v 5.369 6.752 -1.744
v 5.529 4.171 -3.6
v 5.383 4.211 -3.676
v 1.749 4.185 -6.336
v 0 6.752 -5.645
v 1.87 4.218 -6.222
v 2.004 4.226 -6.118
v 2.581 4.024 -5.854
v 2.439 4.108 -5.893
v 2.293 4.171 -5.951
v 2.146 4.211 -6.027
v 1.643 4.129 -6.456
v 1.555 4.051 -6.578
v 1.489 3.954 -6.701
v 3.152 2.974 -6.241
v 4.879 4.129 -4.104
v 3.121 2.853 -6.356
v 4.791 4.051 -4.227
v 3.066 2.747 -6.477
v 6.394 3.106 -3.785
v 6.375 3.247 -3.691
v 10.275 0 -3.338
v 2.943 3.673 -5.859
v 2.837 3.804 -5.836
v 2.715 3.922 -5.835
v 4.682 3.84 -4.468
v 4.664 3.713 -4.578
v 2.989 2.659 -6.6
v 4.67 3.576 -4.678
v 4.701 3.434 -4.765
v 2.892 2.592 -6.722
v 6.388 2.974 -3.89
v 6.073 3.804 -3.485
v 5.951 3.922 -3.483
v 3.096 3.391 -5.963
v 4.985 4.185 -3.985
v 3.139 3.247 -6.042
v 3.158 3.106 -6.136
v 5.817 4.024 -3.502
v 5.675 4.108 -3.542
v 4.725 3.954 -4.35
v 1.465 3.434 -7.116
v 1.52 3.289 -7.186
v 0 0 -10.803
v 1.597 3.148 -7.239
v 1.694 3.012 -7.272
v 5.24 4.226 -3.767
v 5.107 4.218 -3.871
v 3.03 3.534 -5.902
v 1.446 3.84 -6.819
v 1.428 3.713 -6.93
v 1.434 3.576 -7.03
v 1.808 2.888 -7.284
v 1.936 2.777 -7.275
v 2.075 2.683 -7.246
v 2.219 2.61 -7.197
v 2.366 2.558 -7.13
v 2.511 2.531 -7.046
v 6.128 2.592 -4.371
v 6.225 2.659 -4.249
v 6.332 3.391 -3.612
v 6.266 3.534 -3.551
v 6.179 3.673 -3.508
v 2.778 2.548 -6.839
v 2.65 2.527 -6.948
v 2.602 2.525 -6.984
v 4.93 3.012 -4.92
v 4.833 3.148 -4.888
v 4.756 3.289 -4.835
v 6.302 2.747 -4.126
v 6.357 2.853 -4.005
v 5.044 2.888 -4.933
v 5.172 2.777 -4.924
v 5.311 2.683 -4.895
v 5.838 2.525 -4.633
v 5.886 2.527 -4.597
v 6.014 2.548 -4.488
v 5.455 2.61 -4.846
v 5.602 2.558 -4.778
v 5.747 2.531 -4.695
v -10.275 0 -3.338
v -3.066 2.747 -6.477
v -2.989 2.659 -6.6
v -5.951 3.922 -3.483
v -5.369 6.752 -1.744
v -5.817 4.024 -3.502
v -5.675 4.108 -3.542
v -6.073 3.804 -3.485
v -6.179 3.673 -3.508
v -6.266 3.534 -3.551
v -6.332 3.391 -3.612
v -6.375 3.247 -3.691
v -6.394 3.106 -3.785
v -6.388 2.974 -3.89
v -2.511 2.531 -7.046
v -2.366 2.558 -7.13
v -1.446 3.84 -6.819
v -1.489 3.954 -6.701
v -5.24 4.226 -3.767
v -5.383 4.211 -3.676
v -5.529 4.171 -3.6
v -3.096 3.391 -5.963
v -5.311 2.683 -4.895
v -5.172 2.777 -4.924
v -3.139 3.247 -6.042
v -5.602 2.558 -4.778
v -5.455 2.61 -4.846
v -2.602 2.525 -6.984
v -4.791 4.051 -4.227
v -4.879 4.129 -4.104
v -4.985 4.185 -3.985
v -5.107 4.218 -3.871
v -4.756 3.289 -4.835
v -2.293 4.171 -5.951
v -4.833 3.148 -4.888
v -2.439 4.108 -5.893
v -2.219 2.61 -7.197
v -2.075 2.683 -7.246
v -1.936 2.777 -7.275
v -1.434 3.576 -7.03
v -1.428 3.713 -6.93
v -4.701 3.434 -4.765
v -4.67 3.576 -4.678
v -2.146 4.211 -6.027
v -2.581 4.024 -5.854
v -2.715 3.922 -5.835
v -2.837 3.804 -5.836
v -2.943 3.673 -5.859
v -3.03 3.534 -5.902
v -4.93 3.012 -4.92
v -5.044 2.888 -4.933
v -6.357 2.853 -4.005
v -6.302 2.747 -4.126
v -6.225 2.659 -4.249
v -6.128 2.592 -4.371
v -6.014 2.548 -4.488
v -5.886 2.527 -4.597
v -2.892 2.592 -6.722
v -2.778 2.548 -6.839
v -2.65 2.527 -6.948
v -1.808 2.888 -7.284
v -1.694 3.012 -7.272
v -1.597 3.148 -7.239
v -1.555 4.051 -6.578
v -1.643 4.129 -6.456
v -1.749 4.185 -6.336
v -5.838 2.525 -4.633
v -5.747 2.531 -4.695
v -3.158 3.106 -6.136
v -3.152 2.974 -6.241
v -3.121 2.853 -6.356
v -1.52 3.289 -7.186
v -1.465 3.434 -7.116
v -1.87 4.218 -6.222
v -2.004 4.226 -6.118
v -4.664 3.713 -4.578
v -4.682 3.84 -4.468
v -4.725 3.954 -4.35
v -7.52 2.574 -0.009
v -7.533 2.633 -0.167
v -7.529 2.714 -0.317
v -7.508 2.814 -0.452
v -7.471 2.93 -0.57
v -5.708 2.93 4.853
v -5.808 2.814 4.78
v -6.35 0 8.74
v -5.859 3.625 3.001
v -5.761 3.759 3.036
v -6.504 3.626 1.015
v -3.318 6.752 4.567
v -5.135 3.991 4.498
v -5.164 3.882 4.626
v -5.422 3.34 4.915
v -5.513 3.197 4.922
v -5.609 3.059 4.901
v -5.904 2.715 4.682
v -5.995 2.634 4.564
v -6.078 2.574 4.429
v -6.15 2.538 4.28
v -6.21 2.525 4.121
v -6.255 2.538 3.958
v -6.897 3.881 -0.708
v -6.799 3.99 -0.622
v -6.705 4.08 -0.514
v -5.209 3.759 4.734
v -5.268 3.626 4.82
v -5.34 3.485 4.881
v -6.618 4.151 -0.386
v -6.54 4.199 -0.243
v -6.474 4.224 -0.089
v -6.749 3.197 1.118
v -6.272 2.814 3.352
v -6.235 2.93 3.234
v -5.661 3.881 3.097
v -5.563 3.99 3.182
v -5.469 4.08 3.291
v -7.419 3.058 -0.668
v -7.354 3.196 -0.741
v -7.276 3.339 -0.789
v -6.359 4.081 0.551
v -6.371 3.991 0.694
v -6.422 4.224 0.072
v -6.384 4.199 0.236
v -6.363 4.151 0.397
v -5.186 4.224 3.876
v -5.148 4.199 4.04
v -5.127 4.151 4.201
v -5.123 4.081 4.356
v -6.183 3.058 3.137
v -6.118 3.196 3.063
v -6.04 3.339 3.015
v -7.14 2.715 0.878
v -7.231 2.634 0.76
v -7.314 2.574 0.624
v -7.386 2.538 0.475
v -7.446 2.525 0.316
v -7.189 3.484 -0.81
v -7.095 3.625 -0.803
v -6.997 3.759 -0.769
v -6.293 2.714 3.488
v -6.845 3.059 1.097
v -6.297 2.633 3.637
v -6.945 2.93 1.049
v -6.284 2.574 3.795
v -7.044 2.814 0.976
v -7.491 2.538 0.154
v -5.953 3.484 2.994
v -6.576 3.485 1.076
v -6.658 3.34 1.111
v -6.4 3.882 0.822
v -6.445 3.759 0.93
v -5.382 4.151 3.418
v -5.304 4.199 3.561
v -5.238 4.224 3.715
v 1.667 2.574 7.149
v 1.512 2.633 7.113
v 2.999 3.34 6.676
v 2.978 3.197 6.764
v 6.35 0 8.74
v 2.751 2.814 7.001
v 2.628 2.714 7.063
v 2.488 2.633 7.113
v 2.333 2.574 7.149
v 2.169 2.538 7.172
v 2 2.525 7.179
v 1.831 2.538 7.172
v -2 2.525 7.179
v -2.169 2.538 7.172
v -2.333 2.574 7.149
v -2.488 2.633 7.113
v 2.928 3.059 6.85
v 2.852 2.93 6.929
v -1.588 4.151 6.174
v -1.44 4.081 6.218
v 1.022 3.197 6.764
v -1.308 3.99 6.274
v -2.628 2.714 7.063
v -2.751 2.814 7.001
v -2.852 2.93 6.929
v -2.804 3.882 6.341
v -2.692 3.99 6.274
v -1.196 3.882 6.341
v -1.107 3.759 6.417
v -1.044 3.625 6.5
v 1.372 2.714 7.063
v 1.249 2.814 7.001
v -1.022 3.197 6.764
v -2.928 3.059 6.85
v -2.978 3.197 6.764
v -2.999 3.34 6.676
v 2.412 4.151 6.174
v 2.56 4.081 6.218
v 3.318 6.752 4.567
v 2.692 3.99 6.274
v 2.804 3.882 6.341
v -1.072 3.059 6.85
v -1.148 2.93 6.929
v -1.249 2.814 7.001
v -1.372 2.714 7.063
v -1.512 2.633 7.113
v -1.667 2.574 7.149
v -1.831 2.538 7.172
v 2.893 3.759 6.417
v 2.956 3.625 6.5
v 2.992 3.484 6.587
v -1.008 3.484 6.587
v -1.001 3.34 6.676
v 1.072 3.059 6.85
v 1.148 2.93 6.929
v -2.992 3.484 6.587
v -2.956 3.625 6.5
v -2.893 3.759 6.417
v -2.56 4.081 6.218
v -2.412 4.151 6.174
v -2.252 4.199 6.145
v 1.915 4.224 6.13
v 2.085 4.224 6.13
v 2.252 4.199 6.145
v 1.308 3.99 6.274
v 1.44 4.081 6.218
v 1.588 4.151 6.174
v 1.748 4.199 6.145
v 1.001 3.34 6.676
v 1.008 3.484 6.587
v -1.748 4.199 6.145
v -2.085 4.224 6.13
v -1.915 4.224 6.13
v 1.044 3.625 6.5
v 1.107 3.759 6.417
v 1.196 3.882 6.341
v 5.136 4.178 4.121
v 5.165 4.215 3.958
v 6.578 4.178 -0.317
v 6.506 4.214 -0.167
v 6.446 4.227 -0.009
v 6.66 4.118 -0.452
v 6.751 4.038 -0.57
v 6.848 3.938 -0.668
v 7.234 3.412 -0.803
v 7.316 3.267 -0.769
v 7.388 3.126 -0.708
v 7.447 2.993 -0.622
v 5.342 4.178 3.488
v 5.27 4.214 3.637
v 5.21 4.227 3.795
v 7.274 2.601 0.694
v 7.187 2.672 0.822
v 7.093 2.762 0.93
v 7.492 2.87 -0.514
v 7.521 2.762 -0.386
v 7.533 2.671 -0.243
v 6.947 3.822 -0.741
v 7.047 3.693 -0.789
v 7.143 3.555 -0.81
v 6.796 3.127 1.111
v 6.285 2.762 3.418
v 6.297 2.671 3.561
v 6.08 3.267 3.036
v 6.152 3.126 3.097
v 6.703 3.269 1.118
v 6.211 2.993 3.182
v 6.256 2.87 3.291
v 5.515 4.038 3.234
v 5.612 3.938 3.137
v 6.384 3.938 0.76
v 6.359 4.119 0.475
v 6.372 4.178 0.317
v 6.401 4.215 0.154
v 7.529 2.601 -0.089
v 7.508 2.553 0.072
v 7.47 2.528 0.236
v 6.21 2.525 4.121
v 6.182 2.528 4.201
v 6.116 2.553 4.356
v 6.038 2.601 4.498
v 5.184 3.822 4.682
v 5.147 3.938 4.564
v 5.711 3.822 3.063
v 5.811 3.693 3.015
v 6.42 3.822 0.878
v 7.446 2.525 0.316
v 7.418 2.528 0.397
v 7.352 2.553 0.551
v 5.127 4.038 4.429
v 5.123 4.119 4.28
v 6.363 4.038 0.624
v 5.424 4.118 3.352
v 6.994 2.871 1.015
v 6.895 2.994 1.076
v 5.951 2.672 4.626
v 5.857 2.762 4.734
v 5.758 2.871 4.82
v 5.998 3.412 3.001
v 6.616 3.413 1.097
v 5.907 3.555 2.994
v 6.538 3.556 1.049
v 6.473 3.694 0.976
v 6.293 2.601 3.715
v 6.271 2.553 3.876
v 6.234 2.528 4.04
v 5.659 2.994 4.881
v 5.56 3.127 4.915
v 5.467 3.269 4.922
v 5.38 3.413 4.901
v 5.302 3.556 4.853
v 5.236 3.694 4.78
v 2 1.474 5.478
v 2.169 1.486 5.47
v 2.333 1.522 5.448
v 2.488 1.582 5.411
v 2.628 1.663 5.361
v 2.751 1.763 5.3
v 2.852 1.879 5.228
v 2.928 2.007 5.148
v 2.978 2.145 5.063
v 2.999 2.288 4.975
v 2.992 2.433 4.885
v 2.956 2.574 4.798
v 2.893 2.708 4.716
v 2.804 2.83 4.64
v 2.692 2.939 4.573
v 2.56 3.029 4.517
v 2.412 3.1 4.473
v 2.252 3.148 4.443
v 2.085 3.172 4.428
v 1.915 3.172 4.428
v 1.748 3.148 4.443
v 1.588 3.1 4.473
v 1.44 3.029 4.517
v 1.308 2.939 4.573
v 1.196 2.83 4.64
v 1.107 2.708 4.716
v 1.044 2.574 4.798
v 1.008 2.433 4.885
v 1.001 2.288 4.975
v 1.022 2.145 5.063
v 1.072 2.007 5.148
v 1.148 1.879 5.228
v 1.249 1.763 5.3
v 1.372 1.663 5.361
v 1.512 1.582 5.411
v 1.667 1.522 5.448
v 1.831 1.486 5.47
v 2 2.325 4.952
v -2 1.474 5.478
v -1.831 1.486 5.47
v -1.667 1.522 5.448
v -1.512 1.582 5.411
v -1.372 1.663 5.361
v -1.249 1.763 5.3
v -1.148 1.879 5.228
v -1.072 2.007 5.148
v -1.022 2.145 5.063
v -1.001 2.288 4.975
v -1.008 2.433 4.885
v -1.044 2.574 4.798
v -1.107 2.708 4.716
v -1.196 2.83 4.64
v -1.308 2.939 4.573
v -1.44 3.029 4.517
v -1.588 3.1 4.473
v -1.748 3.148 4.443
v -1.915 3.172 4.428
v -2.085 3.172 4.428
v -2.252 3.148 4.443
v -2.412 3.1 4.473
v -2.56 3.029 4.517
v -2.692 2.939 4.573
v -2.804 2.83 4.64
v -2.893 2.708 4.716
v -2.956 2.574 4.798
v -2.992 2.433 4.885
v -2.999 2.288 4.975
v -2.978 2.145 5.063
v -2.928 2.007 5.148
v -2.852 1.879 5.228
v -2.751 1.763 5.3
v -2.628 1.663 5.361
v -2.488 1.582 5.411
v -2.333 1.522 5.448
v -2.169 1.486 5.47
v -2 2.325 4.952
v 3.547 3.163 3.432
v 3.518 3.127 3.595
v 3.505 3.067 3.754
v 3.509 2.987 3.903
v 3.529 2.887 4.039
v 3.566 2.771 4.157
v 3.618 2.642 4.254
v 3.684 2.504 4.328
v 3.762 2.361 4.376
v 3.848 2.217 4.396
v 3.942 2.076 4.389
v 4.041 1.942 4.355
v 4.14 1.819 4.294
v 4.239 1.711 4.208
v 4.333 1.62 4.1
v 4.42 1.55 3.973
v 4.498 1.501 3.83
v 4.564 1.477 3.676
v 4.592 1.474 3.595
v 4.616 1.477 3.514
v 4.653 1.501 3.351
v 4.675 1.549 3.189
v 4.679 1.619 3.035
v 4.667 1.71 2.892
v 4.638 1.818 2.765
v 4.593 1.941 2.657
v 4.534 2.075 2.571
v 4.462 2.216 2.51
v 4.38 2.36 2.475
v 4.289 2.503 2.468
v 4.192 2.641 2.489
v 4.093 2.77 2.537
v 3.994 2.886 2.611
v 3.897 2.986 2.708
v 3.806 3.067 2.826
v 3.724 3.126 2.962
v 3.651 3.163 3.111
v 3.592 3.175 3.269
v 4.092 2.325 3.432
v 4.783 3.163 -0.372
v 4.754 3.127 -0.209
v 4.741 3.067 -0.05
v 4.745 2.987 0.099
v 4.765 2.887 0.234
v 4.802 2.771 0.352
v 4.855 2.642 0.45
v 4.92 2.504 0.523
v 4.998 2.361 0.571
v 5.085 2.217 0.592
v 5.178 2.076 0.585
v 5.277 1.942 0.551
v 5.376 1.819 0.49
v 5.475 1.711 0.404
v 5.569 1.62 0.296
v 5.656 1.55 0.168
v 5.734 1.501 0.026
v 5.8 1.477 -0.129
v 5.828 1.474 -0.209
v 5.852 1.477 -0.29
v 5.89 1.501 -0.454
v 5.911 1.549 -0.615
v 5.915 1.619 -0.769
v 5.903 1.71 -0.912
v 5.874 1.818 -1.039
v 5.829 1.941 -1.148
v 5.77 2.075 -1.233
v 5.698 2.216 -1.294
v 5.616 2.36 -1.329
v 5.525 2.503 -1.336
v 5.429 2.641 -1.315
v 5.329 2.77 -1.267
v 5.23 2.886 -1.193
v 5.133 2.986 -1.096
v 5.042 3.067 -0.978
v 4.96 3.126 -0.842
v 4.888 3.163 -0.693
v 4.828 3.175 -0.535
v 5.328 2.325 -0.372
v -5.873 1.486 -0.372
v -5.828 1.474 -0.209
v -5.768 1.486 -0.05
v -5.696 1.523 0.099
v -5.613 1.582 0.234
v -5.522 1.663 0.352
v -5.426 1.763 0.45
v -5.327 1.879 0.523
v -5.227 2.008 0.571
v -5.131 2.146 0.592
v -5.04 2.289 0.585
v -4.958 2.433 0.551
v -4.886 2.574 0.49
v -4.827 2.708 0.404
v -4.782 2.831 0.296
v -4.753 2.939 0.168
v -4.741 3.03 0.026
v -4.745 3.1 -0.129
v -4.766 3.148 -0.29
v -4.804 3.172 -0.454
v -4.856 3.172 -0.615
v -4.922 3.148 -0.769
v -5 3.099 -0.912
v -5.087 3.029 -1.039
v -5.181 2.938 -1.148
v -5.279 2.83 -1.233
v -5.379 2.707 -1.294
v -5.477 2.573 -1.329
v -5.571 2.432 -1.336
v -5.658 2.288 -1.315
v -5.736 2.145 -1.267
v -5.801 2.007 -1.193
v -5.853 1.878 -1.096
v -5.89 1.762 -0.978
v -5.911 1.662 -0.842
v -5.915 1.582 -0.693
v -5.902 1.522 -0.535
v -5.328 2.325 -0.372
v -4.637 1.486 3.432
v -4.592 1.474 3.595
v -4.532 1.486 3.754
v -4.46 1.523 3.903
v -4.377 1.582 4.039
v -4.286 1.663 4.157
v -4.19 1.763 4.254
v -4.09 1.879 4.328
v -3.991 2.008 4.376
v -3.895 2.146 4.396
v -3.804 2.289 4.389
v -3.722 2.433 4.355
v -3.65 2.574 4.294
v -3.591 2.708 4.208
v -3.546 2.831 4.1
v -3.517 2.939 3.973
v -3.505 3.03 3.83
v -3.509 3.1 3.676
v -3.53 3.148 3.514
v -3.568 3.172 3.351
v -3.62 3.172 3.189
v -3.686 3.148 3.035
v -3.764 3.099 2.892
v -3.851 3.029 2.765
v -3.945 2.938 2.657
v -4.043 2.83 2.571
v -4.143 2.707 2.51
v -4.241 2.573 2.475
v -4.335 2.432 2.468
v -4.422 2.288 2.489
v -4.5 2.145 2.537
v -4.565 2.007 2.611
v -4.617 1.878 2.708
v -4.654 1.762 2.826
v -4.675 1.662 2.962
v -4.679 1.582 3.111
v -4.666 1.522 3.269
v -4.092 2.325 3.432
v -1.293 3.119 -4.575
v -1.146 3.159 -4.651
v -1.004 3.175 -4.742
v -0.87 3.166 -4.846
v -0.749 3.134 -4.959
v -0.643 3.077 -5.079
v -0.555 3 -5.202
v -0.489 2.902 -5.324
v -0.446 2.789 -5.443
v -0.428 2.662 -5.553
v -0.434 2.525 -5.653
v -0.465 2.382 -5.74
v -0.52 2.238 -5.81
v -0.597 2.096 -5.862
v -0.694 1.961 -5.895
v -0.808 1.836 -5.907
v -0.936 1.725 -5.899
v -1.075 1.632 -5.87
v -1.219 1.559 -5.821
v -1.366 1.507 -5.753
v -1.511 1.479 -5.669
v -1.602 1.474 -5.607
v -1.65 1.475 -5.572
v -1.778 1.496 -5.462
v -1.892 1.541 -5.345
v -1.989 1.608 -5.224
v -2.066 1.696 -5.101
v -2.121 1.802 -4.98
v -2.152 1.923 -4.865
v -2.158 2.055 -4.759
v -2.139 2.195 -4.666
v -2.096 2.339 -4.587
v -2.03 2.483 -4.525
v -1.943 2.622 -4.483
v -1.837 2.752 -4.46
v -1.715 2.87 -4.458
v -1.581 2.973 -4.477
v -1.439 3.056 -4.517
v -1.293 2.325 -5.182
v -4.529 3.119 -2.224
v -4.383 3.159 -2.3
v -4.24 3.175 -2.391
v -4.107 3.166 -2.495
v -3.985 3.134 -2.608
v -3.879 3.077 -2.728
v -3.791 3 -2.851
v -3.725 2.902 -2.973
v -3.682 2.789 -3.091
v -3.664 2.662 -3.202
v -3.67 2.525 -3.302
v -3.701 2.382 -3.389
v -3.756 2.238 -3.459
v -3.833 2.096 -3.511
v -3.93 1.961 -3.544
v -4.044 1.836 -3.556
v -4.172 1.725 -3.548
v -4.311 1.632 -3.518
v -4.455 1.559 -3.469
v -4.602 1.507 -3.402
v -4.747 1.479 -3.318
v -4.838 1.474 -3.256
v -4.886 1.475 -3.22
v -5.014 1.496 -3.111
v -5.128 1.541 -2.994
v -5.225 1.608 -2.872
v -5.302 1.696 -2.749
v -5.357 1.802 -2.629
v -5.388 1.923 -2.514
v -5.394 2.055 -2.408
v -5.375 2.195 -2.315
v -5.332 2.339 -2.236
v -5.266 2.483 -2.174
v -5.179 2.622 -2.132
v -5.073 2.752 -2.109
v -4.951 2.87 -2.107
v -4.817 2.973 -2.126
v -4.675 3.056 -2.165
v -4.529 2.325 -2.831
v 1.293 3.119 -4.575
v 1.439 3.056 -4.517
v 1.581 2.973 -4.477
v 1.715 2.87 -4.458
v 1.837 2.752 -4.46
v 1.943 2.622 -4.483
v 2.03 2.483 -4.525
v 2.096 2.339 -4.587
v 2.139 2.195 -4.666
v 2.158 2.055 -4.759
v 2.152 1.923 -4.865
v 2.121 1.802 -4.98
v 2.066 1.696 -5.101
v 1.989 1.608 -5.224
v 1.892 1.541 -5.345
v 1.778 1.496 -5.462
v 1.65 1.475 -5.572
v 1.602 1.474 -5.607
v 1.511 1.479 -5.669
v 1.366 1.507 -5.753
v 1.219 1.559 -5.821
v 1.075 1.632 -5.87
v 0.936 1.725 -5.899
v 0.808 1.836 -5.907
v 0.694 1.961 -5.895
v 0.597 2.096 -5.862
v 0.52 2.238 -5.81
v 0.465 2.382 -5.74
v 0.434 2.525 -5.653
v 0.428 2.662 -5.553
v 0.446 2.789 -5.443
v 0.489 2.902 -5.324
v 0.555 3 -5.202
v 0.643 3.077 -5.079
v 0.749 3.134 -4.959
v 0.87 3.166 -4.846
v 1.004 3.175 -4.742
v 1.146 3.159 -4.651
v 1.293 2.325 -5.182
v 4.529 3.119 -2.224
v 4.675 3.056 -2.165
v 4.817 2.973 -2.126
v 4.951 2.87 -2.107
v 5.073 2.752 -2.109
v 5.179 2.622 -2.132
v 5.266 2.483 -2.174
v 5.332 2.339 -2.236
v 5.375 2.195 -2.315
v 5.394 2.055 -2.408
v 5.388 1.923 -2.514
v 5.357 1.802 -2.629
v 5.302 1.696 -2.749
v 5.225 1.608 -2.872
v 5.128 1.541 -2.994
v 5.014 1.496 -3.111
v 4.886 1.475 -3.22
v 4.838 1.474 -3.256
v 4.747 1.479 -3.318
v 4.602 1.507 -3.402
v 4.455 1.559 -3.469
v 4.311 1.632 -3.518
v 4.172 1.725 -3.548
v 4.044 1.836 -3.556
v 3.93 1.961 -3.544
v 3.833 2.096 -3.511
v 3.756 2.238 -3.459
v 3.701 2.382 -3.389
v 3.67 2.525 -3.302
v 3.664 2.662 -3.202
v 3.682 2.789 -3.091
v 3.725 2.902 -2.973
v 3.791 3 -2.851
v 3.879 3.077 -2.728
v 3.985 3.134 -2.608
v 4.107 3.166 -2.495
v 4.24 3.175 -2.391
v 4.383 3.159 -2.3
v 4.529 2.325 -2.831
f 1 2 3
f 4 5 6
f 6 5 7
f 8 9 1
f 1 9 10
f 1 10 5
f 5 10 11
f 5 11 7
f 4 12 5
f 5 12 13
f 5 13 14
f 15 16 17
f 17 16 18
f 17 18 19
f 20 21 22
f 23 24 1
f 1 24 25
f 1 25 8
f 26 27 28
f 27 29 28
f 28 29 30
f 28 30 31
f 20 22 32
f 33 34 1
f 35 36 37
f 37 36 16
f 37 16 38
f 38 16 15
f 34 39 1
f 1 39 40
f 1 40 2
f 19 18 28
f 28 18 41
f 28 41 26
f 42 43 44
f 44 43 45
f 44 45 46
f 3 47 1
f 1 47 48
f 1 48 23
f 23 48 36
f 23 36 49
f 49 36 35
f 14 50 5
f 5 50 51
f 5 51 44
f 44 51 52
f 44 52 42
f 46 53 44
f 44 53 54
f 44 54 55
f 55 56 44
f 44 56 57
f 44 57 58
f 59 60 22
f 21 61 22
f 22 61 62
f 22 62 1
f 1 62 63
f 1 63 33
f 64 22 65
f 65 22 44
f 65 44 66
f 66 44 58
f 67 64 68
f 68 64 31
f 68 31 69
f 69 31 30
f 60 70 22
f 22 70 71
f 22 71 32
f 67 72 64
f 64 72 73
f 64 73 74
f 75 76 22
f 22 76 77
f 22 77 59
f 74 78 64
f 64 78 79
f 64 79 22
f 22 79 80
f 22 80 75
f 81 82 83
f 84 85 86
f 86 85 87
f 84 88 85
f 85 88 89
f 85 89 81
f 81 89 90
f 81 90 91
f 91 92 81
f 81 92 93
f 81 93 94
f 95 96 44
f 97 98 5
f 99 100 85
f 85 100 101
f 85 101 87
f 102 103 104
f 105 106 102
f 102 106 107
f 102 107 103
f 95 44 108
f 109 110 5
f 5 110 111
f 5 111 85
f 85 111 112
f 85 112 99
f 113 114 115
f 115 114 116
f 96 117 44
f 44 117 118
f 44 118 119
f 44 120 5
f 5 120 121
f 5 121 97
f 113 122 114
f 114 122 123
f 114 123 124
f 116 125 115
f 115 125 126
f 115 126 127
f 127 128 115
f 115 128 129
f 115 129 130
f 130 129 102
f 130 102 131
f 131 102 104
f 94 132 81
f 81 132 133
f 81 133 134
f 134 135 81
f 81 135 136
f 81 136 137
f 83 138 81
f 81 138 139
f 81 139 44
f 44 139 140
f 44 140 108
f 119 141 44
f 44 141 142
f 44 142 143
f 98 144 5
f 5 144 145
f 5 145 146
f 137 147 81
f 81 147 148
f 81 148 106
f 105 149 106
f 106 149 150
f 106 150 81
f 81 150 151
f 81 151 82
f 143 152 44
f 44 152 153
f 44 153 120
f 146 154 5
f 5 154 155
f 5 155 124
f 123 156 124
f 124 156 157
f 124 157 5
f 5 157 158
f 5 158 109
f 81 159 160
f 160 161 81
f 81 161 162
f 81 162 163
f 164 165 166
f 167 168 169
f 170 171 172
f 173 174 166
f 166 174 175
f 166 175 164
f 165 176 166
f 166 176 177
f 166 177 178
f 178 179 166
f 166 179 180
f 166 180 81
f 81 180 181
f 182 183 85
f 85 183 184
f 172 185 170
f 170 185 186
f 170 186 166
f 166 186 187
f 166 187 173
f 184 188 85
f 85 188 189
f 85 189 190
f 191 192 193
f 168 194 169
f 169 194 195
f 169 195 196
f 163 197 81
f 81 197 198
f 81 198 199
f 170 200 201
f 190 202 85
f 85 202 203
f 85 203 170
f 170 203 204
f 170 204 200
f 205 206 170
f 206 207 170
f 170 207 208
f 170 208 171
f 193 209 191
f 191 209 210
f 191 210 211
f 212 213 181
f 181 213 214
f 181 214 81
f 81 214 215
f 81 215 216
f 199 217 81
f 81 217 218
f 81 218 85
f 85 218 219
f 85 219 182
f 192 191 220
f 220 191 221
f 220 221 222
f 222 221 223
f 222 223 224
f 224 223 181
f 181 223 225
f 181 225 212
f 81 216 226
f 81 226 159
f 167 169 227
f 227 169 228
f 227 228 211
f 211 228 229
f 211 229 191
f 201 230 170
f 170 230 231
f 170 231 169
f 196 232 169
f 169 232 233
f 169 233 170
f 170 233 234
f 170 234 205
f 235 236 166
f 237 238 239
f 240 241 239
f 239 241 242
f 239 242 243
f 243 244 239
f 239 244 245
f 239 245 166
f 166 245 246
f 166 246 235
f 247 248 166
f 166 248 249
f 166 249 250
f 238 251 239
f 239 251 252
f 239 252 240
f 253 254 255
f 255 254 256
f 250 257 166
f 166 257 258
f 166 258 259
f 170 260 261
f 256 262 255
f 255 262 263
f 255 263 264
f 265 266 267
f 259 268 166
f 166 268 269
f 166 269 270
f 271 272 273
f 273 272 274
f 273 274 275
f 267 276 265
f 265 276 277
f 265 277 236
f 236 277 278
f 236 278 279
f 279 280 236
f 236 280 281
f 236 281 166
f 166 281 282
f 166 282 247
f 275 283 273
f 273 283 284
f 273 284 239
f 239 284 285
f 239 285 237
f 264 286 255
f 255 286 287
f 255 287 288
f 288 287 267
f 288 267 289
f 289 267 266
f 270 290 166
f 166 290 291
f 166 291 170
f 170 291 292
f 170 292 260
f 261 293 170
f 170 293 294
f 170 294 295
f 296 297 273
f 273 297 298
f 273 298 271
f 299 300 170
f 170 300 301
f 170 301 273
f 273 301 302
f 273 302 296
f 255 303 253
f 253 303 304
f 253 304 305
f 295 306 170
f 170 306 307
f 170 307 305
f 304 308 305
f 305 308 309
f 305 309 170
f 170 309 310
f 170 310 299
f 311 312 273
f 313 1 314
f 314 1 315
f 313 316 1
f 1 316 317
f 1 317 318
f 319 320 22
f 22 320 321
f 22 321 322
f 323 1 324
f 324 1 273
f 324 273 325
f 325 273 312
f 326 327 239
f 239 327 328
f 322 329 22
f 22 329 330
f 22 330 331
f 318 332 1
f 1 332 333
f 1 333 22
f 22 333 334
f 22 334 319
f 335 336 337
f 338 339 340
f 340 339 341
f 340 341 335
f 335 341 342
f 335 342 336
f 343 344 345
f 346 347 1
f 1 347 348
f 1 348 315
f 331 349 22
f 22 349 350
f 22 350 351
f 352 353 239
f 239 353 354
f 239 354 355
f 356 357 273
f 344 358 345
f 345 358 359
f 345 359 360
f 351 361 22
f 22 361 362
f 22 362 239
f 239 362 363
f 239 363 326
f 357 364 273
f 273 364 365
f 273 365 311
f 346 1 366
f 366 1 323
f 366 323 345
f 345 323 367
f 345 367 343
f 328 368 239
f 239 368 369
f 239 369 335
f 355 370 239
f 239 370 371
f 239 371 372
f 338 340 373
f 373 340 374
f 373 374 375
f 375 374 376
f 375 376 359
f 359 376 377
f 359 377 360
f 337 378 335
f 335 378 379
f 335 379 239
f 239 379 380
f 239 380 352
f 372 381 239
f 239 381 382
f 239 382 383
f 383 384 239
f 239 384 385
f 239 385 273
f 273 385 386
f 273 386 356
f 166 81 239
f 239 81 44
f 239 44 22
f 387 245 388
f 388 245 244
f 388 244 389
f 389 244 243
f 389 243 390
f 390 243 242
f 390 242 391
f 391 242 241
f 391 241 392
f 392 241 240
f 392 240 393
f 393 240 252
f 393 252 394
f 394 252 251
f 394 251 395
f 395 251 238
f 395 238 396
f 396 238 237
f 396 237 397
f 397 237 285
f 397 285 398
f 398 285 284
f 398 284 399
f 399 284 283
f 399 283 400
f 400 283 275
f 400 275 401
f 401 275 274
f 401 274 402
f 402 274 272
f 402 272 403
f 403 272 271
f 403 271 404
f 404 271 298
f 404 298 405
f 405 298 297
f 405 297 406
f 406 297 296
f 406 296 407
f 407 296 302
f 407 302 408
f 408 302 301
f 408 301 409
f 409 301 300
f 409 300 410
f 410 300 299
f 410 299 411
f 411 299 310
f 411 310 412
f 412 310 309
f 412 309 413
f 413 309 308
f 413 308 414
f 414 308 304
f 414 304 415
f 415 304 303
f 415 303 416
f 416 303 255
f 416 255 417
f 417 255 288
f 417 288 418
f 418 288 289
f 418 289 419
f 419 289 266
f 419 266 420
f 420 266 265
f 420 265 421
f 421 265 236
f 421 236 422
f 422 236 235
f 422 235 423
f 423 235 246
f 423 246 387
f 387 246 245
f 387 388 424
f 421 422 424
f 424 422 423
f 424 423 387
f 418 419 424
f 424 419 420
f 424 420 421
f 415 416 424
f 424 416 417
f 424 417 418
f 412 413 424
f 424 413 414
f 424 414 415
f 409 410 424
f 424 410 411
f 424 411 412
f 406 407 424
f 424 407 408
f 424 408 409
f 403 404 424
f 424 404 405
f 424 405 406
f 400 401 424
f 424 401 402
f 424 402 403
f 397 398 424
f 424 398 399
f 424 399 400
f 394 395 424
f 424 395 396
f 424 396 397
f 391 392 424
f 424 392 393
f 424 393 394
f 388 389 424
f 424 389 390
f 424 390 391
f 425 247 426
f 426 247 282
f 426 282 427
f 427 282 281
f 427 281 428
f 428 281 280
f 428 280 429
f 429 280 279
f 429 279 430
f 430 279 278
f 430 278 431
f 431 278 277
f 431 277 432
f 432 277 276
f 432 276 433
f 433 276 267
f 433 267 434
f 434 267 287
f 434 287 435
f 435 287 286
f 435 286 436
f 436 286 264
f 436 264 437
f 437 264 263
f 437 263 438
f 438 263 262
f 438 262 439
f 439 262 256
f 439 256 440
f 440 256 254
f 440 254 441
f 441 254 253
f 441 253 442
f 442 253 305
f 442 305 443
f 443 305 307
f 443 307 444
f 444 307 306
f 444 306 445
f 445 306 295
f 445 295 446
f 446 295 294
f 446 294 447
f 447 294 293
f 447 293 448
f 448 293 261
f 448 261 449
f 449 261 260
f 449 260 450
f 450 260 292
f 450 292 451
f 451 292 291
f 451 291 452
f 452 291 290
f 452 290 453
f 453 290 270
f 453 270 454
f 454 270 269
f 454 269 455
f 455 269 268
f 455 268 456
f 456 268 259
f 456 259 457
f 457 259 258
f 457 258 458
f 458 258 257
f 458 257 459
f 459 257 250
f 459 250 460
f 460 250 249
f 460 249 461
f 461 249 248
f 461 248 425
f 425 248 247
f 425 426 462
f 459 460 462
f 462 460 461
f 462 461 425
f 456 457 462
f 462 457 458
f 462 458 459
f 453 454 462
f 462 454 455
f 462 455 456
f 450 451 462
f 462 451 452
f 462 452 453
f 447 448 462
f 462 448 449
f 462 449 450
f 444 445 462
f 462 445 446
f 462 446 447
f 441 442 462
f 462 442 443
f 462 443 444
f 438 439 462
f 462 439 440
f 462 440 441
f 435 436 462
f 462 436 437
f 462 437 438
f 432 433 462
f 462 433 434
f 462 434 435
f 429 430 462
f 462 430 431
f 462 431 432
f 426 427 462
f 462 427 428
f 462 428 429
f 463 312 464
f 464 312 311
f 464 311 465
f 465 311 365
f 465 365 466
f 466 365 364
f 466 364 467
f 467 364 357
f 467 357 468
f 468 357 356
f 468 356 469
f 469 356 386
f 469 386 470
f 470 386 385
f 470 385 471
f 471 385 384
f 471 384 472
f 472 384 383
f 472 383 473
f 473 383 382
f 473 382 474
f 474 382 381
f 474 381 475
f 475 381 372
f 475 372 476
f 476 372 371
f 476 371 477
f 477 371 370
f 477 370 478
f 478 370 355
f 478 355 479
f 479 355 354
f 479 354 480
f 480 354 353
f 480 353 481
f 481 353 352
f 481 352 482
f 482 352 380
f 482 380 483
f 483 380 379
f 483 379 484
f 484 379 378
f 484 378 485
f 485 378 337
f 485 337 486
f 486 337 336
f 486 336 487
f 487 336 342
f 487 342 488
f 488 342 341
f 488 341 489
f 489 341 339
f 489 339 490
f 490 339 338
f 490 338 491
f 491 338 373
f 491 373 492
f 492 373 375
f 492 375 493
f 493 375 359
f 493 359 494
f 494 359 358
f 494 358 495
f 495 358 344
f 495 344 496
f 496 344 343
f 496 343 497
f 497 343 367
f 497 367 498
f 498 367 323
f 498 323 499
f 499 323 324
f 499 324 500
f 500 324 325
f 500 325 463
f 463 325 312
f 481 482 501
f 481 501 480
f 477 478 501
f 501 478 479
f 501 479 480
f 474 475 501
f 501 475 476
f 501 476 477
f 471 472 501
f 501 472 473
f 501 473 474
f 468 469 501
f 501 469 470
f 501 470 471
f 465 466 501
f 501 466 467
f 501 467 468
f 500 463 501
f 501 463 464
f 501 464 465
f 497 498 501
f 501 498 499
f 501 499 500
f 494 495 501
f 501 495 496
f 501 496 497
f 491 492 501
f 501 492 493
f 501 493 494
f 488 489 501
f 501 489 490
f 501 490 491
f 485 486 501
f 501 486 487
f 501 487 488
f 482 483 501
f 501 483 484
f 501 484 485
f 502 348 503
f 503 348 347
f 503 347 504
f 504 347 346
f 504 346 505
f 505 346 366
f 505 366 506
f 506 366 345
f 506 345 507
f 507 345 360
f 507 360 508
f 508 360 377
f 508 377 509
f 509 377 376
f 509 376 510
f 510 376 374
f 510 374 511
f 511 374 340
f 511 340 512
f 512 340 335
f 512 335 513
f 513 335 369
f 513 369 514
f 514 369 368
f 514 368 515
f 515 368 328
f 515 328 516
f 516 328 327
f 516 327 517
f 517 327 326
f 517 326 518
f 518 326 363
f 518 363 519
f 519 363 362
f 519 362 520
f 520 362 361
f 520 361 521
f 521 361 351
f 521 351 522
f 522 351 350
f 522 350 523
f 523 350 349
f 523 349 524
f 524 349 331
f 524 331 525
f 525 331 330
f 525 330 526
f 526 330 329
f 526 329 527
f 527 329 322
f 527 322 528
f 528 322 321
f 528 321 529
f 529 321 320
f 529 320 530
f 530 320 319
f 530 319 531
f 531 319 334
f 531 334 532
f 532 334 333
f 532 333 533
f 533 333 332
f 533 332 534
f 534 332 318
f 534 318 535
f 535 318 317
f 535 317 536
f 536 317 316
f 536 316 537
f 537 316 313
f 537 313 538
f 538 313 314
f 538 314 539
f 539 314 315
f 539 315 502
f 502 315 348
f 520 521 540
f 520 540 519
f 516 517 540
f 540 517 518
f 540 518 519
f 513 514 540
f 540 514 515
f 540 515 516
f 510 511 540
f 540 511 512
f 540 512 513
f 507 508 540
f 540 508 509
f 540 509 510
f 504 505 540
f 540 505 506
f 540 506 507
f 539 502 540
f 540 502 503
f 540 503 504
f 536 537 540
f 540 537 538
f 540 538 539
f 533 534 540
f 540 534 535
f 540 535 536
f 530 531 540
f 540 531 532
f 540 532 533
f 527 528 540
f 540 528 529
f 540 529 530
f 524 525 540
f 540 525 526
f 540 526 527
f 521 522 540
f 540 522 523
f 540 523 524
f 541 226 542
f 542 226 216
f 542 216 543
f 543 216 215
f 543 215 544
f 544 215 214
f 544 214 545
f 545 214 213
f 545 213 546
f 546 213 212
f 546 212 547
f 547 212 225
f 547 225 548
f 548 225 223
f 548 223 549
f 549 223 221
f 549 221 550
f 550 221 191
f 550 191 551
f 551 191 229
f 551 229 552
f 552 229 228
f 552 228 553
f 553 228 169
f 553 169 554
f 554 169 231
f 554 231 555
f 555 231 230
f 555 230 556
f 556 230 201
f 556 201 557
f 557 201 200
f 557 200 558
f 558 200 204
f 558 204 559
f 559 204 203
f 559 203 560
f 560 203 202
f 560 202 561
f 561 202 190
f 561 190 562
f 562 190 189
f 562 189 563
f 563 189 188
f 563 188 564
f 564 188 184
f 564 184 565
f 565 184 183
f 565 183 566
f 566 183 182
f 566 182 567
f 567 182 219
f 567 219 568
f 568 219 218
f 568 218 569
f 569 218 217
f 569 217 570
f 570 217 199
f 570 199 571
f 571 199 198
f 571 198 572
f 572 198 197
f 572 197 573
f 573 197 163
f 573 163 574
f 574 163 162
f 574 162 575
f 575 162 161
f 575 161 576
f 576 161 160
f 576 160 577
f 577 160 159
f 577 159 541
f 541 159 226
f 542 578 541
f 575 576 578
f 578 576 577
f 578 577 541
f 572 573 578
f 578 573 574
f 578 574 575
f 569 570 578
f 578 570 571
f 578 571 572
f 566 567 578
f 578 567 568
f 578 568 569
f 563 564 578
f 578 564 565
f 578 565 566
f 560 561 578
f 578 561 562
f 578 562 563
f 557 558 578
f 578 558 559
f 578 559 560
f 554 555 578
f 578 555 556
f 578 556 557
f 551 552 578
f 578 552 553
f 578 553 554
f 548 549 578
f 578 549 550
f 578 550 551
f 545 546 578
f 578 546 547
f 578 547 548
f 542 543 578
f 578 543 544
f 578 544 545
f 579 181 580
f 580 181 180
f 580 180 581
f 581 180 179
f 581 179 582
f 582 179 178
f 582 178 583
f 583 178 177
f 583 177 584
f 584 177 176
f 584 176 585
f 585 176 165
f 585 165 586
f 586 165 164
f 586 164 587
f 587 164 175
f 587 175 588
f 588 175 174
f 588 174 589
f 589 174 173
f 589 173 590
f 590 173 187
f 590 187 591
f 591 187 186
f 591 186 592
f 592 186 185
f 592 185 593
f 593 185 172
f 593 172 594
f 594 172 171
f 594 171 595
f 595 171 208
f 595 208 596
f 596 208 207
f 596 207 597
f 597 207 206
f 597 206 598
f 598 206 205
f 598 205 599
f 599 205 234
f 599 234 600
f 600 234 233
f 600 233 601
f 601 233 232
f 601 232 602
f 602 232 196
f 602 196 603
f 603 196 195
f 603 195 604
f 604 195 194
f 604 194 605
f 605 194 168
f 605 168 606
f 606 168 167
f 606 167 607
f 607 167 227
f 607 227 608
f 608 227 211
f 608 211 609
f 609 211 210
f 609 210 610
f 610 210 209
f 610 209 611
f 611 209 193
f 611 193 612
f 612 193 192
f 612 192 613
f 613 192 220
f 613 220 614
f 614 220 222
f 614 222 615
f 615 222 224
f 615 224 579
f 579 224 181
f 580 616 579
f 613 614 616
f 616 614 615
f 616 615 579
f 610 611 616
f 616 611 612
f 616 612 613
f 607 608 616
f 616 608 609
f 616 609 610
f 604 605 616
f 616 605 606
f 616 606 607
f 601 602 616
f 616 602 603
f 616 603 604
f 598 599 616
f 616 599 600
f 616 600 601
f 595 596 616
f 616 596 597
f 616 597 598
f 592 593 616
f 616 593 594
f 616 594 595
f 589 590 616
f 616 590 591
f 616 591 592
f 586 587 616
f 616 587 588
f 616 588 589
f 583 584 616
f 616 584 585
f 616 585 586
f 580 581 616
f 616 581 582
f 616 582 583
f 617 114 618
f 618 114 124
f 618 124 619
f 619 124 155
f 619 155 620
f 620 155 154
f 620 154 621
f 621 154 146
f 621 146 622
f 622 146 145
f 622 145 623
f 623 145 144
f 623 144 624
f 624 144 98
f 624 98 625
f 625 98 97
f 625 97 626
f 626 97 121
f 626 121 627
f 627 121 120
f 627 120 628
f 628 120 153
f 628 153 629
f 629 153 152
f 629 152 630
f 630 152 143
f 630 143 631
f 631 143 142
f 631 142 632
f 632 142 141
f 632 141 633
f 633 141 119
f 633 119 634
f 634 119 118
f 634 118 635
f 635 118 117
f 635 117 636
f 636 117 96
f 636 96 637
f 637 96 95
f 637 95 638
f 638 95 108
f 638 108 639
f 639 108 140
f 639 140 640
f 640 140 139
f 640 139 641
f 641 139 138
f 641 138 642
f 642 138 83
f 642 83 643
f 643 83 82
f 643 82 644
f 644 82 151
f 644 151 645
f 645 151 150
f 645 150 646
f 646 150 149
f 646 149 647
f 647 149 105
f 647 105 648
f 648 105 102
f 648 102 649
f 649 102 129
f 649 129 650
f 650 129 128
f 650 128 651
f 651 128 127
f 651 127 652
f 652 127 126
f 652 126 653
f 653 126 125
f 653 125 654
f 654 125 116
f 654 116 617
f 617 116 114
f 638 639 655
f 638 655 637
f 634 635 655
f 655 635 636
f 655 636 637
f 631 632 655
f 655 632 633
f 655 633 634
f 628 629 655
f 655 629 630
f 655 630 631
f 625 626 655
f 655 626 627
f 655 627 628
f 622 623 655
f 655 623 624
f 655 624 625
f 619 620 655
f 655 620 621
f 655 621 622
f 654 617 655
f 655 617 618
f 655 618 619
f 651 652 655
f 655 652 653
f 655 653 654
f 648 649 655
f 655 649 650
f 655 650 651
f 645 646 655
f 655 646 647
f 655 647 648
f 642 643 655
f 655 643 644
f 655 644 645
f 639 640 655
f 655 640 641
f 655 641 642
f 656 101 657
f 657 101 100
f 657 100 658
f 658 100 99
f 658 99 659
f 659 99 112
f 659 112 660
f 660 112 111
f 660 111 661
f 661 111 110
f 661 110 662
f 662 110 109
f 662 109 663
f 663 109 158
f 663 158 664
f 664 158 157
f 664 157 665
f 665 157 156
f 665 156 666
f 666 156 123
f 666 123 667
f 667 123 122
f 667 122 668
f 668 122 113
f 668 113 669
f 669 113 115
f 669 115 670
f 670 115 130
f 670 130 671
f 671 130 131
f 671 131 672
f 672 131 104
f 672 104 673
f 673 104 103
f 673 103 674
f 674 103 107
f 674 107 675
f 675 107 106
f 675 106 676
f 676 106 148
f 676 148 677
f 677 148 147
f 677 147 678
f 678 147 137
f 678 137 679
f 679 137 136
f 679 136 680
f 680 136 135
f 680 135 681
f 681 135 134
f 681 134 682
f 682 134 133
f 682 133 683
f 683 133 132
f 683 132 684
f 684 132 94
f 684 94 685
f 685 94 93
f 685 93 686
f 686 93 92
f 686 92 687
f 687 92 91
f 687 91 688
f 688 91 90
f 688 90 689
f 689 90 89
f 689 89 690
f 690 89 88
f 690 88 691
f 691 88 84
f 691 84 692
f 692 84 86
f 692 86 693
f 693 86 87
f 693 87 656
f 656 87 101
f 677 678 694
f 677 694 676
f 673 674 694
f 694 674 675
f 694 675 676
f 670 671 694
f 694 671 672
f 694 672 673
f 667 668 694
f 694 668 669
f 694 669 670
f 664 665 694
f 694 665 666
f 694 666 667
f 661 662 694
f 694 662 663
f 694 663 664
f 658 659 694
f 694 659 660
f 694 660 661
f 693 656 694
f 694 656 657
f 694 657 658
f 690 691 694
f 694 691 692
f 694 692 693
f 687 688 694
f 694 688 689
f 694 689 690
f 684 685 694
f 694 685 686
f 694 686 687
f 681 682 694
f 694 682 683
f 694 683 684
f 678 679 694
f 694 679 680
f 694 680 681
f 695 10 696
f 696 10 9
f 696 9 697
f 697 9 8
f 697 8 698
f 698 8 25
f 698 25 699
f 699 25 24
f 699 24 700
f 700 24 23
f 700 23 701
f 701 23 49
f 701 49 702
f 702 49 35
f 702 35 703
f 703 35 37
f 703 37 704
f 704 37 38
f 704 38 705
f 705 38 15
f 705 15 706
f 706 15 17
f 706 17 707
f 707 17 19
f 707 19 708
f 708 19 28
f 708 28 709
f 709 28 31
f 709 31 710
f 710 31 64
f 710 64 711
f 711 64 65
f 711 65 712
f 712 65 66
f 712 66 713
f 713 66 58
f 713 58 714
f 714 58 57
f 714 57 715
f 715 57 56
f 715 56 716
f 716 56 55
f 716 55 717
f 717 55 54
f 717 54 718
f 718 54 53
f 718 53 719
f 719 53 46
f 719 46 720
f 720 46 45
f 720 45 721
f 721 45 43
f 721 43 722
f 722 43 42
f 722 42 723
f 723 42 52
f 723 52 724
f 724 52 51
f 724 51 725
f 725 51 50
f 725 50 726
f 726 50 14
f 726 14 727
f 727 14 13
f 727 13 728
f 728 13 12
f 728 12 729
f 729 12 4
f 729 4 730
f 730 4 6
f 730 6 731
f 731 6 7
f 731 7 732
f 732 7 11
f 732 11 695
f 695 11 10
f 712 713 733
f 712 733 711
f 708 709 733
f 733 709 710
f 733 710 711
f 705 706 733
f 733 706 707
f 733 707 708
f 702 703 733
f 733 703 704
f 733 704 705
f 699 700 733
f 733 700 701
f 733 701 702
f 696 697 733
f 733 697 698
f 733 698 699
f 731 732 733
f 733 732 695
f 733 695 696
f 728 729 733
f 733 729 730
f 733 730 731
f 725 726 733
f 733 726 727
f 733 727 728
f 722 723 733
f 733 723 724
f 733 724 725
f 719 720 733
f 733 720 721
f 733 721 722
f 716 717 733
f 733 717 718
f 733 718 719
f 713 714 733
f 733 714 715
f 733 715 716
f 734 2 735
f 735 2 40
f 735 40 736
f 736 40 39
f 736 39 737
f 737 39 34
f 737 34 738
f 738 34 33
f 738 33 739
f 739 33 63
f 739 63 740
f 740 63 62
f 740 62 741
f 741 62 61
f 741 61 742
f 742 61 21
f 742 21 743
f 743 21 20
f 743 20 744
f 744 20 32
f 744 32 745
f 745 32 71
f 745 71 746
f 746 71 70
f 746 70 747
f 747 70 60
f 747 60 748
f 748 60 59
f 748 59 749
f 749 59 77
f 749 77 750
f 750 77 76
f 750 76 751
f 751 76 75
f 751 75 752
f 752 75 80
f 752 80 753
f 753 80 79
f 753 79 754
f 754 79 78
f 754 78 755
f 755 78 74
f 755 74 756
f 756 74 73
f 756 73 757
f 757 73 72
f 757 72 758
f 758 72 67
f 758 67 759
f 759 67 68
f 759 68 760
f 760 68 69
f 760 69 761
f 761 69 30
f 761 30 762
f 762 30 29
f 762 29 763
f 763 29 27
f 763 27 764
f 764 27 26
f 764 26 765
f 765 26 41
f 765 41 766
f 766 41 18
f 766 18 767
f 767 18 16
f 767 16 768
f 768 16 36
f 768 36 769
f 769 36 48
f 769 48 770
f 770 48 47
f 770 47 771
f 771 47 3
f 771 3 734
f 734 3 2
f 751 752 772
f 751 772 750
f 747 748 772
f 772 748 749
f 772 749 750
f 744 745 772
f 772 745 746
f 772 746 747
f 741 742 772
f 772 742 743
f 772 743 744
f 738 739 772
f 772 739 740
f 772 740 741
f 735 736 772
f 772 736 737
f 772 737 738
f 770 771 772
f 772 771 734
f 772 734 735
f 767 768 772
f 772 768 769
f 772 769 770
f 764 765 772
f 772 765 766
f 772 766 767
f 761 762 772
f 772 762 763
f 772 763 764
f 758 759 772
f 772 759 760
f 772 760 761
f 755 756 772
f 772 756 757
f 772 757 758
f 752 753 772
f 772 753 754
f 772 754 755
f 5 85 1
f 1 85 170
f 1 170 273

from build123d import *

# Parameters (mm, degrees)
BOSS_EXTRUDE1_DEPTH = 6.752040791
BOSS_EXTRUDE1_TAPER = 31.717474411
SKETCH3_R           = 1
CUT_EXTRUDE1_DEPTH  = 2
CIRPATTERN1_COUNT   = 5


with BuildPart() as part:
    # Sketch1 → Boss-Extrude1 (new body)
    with BuildSketch(Plane(origin=(0, 0, 0), x_dir=(1, 0, 0), z_dir=(0, 1, 0))):
        Polygon((0, 10.803265266), (-10.274515829, 3.338392562), (-6.35, -8.740025195), (6.35, -8.740025195), (10.274515829, 3.338392562), align=None)
    extrude(amount=BOSS_EXTRUDE1_DEPTH, taper=BOSS_EXTRUDE1_TAPER)

    # Sketch3 → Cut-Extrude1 (cut)
    with BuildSketch(Plane(origin=(0, 3.908658092, 6.324341644), x_dir=(1, 0, 0), z_dir=(1.6266940928737823e-15, 0.5257311121191348, 0.8506508083520392))):
        with Locations((-2, -0.626153166)):
            Circle(SKETCH3_R)
        with Locations((2, -0.626153166)):
            Circle(SKETCH3_R)
    cut_extrude1 = extrude(amount=-CUT_EXTRUDE1_DEPTH, mode=Mode.SUBTRACT)

    # CirPattern1: Cut-Extrude1 ×5 about axis
    cirpattern1_axis = Axis((0, 14.848740719, 0), (0, -1, 0))
    for i in range(1, CIRPATTERN1_COUNT):
        add(cut_extrude1.rotate(cirpattern1_axis, i * 360 / CIRPATTERN1_COUNT), mode=Mode.SUBTRACT)


solid = part.part
